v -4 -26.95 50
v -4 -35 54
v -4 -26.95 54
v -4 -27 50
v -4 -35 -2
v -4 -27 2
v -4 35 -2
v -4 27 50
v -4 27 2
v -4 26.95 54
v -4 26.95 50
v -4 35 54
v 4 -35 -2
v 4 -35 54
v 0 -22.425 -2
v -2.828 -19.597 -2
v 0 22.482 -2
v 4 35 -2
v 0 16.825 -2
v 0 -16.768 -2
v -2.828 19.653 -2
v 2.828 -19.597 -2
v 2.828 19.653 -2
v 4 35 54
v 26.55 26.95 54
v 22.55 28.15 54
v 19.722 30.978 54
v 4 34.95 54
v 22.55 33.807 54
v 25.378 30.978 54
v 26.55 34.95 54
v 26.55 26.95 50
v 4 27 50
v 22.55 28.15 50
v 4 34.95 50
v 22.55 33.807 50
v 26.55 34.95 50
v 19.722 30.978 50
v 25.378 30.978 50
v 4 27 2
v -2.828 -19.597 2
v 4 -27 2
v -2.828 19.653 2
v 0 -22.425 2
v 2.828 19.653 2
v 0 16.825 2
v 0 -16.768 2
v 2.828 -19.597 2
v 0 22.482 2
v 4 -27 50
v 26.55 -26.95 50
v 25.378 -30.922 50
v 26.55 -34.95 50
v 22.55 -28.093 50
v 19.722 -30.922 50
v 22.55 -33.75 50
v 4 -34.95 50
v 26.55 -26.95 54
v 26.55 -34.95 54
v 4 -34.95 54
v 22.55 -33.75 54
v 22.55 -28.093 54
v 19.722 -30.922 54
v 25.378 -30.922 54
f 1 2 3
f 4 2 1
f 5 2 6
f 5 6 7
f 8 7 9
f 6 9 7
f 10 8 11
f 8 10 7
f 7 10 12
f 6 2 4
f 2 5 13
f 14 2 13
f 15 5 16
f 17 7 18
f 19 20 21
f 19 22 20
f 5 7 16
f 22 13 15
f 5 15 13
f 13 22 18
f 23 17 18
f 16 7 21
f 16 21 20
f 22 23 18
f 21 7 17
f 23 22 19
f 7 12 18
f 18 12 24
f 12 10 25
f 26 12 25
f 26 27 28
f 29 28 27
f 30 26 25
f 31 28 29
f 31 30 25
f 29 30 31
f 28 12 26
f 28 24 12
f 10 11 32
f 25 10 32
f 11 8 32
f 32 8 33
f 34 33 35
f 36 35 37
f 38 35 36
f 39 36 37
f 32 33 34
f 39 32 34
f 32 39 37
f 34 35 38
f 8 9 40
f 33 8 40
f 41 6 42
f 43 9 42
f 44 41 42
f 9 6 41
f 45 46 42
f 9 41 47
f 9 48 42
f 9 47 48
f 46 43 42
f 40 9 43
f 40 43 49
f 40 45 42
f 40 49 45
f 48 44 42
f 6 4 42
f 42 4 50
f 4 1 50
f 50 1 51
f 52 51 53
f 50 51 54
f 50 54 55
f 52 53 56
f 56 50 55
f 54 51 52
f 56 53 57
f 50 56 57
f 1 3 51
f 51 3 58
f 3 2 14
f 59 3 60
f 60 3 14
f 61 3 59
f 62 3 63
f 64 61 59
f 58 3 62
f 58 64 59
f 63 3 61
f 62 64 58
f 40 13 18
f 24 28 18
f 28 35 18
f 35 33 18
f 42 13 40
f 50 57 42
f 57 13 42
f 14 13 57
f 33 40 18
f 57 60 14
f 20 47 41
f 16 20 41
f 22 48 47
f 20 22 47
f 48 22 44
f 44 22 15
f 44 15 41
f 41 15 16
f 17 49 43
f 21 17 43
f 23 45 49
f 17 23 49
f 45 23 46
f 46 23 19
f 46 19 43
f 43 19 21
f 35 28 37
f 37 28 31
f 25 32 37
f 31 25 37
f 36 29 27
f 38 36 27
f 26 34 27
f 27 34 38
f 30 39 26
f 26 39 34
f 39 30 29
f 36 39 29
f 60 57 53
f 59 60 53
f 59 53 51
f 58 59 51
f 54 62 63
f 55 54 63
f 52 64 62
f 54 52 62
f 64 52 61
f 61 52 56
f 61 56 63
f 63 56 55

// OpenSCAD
$fn = 100;
screw_thickness = 2;
screw_height = 4;
mount_screw_d = 4;
mount_x_size = 107;
mount_y_size = 39.25;
mount_z_size = 52;
plate_x_size = 2;
plate_y_size = 70;
sensor_mount_y = 70;
plate_thickness = 2;
sensor_height = 10;
sensor_size = 61.9;
bar_thickness = 8;

module screw_hole(x, y, z, screw_r=mount_screw_d / 2, wall_r=screw_thickness, height=screw_height)
{
    difference()
    {
        translate([x - (screw_r + wall_r), y - (screw_r + wall_r), z - height / 2])
        cube([2 * (screw_r + wall_r), 2 * (screw_r + wall_r), height], center=false);

        translate([x, y - 1.4 * screw_r, z - height], center=false)
        rotate([0, 0, 45])
        cube([2 * screw_r, 2 * screw_r, 2 * height], center=false);
    }
}

module screw_mount(x)
{
    difference()
    {
        translate([x - 0.5 * mount_screw_d - screw_thickness, -plate_y_size / 2, -screw_height / 2])
        cube([mount_screw_d + 2 * screw_thickness, plate_y_size, screw_height],
            center=false);

        translate([x, mount_y_size / 2 - 0.7 * mount_screw_d, -screw_height], center=false)
        rotate([0, 0, 45])
        cube([mount_screw_d, mount_screw_d, 2 * screw_height], center=false);

        translate([x, -mount_y_size / 2 - 0.7 * mount_screw_d, -screw_height], center=false)
        rotate([0, 0, 45])
        cube([mount_screw_d, mount_screw_d, 2 * screw_height], center=false);

    }
}

screw_mount(0);

translate([-0.5 * mount_screw_d - screw_thickness, -plate_y_size / 2, 0])
cube([mount_screw_d + 2 * screw_thickness, bar_thickness, mount_z_size + 2]);

translate([-0.5 * mount_screw_d - screw_thickness, (plate_y_size - 2 * mount_screw_d - screw_thickness - bar_thickness) / 2 + 1, 0])
cube([mount_screw_d + 2 * screw_thickness, bar_thickness, mount_z_size + 2]);

for (j = [-1, 1])
{
    screw_hole(mount_x_size / 2 - sensor_size / 2, j * sensor_size / 2, mount_z_size);
    translate([-4, j * sensor_size / 2 - 4, mount_z_size - 2])
    cube([23, mount_screw_d + 2 * screw_thickness, screw_height], center=false);
}
